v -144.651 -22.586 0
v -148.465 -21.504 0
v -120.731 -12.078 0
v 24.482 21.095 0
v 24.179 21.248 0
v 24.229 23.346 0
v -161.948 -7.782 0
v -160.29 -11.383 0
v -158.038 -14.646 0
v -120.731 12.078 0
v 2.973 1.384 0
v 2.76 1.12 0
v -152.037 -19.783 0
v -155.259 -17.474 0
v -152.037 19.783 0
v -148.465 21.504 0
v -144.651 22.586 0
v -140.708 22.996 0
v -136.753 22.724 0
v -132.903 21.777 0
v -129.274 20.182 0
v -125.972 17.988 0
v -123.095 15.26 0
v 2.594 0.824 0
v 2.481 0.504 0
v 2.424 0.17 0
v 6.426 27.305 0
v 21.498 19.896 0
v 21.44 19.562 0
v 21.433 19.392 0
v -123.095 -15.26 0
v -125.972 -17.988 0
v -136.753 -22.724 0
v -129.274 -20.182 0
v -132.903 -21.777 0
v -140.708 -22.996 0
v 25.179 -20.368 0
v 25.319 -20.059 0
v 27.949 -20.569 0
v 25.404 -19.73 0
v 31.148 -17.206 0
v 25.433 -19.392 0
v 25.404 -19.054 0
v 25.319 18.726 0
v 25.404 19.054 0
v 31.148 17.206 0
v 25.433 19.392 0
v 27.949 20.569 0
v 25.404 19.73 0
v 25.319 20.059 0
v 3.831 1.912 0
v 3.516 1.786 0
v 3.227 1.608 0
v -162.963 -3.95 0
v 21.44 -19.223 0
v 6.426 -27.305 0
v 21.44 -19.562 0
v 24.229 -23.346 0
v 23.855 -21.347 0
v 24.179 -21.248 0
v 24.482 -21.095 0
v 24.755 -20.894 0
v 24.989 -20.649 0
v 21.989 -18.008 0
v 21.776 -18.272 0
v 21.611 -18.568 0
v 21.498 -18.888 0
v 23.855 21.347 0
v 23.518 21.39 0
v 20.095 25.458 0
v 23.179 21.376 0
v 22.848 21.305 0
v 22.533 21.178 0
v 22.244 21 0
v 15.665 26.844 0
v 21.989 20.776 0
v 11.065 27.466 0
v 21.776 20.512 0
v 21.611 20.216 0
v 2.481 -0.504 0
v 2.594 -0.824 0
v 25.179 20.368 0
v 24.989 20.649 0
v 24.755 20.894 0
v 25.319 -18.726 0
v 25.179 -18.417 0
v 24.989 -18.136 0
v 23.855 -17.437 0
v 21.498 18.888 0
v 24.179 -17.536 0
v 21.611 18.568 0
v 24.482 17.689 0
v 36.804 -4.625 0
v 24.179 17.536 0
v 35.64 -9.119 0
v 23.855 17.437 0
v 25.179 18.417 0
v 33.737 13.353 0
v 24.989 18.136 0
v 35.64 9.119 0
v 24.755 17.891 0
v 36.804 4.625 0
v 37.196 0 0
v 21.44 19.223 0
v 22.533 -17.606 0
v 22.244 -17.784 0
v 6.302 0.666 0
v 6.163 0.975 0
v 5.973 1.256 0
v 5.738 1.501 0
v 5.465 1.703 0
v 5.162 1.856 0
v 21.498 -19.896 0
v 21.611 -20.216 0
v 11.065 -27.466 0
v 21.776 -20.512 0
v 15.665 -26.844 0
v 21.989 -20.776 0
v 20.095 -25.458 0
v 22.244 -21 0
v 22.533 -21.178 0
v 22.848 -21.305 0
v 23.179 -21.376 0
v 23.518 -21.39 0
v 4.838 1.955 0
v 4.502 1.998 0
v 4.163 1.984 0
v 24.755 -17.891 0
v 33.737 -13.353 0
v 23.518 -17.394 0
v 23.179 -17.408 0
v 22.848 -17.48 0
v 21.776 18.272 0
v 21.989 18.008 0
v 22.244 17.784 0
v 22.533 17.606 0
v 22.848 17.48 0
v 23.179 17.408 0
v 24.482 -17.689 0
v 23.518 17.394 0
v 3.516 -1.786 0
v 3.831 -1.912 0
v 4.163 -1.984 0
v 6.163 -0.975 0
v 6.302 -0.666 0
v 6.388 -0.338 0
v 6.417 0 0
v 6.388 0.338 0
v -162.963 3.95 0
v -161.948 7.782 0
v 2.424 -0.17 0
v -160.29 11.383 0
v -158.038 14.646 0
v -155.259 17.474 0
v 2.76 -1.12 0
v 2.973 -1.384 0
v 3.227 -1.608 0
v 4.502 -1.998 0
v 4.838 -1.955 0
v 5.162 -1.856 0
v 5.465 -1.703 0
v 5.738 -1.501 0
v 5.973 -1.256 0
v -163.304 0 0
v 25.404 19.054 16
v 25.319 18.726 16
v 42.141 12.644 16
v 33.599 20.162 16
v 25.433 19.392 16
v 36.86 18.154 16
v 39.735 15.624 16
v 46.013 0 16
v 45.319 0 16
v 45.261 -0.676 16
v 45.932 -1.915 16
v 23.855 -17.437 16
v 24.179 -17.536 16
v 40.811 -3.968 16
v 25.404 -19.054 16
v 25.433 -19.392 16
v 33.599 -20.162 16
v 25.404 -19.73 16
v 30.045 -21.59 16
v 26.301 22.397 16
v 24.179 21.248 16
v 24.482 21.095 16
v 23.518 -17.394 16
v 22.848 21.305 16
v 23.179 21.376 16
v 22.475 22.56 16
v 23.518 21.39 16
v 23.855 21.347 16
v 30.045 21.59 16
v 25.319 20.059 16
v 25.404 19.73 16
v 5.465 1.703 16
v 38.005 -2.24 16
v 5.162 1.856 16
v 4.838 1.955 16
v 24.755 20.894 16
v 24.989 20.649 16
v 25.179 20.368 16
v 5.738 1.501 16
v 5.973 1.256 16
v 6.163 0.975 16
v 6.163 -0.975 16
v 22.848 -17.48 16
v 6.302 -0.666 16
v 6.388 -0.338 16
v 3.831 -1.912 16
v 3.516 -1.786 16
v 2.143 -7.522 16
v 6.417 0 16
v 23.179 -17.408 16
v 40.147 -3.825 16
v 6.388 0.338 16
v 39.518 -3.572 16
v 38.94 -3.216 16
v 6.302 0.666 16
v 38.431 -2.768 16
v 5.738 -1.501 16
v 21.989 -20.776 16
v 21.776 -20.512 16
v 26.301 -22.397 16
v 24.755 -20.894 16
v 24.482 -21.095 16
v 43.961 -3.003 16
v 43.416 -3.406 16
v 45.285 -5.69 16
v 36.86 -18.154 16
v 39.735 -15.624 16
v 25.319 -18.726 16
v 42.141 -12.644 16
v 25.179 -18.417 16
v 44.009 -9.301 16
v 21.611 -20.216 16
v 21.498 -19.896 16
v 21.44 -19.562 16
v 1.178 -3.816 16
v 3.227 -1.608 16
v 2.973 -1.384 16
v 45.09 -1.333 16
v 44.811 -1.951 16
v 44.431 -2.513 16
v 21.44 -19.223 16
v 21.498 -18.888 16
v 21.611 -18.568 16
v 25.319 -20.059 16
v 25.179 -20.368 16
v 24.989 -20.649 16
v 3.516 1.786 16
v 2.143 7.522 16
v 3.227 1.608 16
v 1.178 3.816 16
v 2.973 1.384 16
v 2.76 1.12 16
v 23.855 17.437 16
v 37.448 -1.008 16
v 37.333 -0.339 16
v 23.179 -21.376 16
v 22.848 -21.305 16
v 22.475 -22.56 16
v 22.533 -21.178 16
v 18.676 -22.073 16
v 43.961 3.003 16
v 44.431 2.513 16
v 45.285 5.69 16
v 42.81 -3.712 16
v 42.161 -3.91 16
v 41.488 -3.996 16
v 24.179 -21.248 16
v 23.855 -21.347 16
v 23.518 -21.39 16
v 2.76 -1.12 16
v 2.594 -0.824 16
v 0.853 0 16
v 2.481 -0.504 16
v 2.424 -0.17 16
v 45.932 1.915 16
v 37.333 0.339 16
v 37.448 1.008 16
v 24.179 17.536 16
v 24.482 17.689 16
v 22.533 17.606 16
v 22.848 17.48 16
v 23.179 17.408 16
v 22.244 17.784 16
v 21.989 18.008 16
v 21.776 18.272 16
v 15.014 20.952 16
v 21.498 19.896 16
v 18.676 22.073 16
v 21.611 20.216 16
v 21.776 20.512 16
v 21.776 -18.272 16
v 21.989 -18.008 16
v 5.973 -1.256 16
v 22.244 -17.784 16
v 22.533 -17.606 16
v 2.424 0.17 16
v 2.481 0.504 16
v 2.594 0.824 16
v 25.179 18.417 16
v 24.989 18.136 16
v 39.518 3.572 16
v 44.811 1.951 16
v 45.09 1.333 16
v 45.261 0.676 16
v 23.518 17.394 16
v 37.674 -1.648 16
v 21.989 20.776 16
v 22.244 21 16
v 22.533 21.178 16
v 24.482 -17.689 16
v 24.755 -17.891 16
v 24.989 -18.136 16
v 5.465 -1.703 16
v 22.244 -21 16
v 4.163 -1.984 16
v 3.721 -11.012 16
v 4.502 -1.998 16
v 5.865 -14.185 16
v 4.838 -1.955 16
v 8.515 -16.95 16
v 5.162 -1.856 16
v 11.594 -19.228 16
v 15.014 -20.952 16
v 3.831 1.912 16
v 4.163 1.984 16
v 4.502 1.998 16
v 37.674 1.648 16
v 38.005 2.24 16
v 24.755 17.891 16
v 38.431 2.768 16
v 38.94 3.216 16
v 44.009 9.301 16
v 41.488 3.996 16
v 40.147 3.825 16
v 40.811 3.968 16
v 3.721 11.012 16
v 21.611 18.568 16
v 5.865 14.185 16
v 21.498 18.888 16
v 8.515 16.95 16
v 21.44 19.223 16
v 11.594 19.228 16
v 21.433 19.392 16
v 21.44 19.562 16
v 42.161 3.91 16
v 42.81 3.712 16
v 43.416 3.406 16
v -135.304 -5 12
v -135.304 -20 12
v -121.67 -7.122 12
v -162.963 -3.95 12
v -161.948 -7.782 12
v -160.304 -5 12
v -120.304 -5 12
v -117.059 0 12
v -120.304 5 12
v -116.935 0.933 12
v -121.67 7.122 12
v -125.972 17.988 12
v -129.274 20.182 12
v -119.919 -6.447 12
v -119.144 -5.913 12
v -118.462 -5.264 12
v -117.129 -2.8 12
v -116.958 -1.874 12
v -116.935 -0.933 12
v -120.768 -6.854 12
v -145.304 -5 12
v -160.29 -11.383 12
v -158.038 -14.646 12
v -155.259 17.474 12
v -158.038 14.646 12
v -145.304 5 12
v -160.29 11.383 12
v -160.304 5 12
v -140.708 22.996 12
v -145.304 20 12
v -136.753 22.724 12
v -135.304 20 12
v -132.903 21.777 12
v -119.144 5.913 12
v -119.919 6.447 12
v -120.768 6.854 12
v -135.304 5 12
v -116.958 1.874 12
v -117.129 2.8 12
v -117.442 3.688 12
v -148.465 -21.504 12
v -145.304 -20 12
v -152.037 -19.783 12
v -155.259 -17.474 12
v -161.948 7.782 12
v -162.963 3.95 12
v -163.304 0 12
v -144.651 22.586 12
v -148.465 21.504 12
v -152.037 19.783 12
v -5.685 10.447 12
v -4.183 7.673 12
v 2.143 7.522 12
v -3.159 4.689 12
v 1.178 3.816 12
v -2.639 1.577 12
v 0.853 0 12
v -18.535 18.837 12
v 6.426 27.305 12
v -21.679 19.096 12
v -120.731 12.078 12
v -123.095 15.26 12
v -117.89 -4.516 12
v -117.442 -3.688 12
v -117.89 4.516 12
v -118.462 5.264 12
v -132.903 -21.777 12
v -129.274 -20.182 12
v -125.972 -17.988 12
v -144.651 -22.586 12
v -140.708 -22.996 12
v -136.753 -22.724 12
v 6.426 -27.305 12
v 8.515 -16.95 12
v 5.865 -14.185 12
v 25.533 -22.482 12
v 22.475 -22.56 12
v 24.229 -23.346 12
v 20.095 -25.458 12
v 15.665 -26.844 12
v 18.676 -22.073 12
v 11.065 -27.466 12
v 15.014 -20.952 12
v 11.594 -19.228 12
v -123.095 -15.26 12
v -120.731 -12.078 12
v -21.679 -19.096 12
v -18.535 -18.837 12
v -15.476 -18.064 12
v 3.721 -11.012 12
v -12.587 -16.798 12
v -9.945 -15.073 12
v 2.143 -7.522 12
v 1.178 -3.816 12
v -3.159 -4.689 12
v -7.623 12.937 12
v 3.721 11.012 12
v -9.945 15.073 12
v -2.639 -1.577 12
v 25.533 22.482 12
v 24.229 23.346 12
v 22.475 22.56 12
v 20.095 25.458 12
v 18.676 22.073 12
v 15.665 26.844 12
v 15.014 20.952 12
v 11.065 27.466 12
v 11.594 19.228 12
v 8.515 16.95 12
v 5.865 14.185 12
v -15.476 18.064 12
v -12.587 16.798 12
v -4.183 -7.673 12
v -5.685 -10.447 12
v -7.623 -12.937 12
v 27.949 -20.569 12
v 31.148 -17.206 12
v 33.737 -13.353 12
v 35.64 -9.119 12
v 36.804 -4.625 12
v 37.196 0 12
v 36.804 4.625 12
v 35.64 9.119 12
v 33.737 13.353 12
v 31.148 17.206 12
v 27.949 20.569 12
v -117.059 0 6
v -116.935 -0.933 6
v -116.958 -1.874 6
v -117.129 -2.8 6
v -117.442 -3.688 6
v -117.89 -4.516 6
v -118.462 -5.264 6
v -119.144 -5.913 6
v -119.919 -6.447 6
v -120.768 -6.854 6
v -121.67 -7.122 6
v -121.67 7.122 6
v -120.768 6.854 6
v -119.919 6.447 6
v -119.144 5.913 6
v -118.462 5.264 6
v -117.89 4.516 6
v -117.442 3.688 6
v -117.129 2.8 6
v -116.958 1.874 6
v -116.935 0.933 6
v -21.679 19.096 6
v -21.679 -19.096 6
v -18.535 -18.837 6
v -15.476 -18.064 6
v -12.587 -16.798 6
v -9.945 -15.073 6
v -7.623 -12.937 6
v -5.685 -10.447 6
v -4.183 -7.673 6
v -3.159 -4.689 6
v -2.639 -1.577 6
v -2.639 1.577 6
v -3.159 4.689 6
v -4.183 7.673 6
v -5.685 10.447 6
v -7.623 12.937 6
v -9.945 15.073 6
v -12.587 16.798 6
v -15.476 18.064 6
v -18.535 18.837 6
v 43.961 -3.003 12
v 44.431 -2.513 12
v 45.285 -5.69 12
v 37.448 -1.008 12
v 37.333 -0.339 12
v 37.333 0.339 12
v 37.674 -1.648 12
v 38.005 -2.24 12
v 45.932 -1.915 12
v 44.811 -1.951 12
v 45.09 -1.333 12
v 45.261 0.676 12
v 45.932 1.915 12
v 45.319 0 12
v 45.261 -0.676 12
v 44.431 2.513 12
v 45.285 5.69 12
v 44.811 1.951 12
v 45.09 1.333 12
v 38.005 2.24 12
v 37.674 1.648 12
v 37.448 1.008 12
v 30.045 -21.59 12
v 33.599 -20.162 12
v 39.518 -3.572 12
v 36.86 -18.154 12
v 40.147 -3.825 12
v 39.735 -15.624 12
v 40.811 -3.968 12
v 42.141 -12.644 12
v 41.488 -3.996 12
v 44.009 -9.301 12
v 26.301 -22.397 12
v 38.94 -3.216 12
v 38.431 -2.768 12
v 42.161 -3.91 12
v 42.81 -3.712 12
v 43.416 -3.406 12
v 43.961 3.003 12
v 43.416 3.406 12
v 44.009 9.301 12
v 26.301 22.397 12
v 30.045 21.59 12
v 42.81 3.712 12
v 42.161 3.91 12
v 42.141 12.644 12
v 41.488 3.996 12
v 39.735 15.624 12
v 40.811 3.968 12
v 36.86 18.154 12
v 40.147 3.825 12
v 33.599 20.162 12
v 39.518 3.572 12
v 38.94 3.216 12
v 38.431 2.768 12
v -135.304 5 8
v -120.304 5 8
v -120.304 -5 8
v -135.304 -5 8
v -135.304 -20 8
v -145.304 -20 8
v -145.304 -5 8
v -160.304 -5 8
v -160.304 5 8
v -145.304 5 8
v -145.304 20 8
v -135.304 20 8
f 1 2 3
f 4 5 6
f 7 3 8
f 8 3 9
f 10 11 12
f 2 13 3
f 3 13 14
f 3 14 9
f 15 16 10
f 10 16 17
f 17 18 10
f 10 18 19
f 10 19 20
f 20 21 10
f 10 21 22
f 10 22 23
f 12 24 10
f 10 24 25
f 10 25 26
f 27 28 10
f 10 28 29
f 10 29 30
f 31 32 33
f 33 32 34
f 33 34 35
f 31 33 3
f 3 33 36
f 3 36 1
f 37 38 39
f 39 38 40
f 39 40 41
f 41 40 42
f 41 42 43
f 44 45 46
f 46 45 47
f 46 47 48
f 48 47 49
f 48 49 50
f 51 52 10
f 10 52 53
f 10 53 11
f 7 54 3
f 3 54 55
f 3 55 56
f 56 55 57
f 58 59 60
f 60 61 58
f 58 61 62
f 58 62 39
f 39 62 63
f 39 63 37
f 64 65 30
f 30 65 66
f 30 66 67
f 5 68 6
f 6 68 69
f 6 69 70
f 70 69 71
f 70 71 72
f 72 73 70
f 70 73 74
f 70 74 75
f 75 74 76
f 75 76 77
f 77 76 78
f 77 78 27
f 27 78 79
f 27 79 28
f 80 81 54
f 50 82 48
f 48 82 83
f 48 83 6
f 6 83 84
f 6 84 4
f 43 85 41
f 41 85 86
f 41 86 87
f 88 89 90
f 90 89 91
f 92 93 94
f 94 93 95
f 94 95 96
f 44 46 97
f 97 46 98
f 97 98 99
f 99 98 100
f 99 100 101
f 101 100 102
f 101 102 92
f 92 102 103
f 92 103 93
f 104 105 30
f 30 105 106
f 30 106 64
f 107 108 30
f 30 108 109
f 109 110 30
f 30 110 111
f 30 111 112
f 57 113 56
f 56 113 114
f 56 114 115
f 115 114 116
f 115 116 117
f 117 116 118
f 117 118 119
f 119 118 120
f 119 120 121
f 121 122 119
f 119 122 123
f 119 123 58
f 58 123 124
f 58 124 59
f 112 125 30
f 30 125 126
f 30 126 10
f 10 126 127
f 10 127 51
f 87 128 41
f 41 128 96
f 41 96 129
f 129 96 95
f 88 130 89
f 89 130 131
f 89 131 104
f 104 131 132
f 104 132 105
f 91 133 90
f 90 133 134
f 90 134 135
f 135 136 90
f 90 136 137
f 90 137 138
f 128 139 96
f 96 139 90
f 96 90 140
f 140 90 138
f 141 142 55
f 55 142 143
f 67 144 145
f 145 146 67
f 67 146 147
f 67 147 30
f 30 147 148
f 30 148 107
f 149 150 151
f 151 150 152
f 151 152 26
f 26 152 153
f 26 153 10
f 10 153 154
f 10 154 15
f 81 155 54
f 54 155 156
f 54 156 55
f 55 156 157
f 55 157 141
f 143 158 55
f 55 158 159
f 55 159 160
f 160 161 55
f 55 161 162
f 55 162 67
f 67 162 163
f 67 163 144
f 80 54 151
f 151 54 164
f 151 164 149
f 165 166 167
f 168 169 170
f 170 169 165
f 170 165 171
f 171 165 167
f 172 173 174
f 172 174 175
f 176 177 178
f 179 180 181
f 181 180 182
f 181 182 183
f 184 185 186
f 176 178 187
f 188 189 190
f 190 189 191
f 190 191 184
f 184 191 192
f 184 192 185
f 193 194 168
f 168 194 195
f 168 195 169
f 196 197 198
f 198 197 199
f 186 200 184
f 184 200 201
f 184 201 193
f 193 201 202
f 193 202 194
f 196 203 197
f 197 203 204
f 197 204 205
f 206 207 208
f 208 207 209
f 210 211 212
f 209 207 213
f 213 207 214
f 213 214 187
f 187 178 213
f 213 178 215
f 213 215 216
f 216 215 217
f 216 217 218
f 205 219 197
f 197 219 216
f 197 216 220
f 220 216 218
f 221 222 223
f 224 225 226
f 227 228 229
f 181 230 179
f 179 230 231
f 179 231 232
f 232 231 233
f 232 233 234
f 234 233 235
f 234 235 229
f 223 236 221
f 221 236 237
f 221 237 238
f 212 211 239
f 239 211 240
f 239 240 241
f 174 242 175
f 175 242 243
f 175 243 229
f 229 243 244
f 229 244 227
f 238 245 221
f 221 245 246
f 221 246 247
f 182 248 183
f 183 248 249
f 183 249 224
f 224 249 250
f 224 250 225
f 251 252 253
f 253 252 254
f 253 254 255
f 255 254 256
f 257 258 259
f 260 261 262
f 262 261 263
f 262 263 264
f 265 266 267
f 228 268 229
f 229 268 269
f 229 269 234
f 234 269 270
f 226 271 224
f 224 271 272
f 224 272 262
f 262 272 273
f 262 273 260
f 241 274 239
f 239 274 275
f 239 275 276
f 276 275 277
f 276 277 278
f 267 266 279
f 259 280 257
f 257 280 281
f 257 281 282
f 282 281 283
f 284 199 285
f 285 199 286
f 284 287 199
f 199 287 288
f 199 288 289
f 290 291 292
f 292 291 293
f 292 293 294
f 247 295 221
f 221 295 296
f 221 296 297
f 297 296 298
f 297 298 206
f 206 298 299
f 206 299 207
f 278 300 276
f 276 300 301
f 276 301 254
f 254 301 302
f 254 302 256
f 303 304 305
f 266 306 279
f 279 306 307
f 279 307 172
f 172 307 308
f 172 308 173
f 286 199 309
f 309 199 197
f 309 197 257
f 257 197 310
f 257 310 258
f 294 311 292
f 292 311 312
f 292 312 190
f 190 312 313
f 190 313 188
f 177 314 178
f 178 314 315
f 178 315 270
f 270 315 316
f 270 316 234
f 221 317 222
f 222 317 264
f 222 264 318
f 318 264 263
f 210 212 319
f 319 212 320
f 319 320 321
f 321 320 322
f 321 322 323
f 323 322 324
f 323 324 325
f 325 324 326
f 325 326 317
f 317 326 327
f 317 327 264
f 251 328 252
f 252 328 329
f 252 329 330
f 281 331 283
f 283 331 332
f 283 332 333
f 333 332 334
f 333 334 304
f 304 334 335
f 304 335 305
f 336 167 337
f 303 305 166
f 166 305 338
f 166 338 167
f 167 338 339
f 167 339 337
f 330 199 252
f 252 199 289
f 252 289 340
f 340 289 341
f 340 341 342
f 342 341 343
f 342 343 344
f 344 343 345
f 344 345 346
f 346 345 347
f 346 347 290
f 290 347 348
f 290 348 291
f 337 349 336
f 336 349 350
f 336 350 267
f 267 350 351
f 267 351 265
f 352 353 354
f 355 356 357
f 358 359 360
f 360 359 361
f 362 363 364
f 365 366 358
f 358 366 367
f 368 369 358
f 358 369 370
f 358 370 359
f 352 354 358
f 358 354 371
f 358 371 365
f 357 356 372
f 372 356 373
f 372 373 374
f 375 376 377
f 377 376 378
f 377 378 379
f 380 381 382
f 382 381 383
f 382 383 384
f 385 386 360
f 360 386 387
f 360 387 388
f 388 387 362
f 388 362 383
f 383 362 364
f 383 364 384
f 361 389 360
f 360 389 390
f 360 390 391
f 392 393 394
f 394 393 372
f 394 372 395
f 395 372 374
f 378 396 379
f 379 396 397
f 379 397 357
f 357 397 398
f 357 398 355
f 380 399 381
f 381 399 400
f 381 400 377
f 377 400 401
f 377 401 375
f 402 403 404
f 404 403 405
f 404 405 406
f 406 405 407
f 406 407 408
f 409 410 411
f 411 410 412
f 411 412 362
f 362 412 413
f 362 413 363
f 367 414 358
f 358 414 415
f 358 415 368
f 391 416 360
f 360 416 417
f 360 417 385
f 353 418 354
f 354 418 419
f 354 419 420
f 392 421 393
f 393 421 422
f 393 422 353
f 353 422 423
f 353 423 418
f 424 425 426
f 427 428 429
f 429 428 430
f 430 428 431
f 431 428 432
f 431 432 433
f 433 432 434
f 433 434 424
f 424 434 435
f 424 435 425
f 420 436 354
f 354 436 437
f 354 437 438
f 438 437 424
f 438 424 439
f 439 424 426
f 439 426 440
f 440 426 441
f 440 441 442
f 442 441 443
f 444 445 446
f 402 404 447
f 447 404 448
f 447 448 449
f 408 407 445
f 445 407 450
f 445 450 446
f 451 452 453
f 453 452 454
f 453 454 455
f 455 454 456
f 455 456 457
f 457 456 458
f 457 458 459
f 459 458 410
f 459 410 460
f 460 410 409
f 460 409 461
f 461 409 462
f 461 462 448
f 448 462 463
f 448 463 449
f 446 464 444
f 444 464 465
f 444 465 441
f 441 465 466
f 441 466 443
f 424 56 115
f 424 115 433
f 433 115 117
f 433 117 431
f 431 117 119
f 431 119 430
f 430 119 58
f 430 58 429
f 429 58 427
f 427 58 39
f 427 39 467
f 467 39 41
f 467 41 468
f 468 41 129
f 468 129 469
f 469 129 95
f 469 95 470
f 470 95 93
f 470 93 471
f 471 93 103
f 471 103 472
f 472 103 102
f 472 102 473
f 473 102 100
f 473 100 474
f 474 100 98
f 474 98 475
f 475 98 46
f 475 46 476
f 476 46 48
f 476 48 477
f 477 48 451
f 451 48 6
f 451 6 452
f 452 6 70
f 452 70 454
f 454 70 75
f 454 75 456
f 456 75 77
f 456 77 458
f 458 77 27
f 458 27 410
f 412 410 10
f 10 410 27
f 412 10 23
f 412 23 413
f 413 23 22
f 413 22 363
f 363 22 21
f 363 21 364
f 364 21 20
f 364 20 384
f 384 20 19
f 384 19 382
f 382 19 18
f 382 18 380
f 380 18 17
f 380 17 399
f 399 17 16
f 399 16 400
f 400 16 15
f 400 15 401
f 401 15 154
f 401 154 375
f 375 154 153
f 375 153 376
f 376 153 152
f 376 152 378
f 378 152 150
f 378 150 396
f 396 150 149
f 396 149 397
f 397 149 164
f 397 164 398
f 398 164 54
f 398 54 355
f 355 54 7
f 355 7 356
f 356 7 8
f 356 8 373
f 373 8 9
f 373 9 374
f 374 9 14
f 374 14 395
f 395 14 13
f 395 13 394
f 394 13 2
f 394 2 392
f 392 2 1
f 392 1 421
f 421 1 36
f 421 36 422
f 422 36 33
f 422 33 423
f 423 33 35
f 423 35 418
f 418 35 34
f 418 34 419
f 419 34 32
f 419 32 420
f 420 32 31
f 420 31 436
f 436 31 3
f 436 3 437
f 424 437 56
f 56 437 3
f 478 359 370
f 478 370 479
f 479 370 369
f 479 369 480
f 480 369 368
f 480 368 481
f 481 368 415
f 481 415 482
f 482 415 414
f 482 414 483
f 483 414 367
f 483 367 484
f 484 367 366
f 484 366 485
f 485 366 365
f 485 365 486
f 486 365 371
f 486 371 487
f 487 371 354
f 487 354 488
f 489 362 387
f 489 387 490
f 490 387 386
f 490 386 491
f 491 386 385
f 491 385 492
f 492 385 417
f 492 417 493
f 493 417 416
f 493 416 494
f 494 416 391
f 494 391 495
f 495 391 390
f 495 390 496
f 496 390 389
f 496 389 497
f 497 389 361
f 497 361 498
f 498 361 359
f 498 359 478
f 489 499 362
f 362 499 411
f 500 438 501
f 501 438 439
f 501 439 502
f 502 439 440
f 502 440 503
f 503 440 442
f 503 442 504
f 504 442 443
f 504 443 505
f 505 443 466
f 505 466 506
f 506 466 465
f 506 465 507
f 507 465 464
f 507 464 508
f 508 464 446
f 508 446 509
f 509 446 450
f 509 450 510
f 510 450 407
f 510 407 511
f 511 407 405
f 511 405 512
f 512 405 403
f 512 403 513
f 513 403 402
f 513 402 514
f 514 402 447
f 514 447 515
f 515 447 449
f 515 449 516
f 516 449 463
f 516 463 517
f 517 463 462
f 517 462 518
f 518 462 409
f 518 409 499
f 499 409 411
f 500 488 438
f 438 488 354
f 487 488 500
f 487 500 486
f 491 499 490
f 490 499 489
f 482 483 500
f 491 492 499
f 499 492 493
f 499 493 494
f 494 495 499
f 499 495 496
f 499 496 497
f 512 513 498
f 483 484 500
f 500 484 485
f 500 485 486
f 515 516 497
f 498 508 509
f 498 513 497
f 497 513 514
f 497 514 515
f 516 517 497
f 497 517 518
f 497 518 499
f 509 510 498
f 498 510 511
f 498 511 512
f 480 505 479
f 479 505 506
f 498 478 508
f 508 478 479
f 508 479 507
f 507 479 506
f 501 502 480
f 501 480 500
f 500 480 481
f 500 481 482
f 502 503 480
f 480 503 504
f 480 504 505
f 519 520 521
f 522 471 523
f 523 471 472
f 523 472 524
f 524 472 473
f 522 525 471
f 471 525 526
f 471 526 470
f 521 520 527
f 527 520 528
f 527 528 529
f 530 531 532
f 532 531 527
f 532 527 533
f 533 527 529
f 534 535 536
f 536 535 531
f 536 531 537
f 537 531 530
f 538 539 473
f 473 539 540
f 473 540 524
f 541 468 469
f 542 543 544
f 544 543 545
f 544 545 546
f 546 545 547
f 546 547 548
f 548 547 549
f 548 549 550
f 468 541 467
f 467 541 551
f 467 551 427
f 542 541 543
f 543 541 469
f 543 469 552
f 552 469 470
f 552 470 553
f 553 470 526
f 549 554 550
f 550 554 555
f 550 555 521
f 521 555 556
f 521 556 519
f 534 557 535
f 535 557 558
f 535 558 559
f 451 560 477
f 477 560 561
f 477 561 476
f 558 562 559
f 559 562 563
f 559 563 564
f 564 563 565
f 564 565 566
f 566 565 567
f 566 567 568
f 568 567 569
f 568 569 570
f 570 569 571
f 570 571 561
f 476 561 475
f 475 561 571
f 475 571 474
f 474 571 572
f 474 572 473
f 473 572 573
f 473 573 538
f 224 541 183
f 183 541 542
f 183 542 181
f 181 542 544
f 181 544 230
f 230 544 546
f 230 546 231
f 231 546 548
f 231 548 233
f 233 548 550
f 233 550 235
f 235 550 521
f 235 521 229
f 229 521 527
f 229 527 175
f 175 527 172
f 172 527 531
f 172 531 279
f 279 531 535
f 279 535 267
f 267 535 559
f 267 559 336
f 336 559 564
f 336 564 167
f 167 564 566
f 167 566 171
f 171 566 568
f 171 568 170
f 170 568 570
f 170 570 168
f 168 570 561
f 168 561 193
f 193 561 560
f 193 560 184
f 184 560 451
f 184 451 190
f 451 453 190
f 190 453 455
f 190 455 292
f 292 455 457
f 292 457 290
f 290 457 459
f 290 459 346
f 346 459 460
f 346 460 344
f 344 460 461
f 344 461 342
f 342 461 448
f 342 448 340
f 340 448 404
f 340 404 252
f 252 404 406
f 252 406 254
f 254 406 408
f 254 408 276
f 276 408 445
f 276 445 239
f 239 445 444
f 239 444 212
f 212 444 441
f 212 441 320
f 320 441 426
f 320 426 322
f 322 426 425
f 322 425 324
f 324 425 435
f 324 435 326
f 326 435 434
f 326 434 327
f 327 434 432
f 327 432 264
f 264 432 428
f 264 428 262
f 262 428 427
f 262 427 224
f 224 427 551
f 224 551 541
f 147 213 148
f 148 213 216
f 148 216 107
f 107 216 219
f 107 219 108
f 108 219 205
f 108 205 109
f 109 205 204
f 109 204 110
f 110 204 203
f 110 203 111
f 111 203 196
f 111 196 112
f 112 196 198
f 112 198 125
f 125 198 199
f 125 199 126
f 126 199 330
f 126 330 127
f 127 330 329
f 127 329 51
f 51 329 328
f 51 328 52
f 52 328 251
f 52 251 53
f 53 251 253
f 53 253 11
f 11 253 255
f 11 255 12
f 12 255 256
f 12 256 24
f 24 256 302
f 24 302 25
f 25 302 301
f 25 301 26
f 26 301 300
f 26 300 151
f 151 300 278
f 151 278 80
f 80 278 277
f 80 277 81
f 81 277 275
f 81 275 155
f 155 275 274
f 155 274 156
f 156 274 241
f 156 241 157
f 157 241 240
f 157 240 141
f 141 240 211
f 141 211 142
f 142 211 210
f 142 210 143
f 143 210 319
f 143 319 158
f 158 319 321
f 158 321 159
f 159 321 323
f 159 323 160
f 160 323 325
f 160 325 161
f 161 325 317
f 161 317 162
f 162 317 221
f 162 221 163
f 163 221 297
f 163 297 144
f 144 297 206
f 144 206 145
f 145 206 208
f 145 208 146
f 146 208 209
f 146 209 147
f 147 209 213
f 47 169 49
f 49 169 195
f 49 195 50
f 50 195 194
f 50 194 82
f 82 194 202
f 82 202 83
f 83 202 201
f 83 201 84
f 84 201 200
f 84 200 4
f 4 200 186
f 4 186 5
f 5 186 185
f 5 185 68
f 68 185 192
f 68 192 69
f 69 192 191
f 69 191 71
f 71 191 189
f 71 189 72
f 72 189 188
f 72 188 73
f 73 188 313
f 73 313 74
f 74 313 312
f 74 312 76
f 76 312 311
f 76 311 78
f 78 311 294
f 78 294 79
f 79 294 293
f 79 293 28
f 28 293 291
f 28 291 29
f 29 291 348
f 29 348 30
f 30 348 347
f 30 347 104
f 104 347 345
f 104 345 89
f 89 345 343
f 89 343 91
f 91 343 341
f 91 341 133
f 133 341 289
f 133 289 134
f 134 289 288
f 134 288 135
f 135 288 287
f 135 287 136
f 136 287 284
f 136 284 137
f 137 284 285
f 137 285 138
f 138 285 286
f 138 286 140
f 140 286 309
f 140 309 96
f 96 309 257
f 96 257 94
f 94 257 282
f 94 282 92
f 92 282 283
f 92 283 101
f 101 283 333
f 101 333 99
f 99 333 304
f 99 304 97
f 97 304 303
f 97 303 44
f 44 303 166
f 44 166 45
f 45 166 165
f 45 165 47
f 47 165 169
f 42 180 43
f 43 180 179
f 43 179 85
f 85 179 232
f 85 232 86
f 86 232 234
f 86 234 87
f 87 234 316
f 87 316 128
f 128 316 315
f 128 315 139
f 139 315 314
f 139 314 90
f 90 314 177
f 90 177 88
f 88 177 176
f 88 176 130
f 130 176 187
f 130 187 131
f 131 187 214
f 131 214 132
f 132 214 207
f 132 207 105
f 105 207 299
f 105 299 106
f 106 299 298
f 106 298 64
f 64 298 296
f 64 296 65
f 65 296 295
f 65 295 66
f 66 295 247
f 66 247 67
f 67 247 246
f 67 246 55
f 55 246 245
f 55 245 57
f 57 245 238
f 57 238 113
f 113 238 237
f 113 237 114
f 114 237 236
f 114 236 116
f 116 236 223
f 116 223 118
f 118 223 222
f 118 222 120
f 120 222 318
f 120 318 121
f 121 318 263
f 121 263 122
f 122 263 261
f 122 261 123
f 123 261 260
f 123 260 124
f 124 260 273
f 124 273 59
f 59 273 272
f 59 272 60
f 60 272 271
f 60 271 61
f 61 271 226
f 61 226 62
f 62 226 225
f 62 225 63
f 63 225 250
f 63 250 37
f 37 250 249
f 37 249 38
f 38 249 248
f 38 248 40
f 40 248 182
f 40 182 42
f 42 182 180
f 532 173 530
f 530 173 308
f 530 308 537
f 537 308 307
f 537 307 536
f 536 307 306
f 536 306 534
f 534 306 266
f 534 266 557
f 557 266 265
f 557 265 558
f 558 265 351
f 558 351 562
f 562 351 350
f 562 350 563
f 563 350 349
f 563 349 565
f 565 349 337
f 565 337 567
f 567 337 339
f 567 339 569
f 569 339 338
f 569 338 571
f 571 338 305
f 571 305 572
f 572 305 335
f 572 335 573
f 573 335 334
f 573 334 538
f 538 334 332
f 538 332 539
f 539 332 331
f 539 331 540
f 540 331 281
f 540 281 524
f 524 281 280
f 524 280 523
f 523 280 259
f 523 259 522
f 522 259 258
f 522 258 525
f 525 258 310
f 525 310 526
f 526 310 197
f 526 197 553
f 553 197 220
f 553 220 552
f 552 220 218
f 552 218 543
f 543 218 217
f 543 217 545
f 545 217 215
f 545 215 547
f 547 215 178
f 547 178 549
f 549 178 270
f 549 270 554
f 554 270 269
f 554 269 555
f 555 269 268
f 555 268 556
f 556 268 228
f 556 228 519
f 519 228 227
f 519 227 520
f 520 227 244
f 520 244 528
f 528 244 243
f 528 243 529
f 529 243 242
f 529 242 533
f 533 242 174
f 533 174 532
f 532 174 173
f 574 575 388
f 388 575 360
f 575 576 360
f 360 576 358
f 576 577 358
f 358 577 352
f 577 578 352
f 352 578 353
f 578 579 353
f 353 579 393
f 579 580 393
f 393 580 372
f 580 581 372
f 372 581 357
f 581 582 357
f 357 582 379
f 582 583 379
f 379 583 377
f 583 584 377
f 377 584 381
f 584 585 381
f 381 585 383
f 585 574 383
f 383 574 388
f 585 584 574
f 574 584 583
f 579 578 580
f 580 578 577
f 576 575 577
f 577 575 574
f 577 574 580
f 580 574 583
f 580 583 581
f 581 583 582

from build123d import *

# Parameters (mm, degrees)
BOSS_EXTRUDE1_DEPTH     = 12
CUT_EXTRUDE1_DEPTH      = 6
SKETCH5_R               = 22.579968686
BOSS_EXTRUDE2_DEPTH     = 4
SKETCH6_R               = 2
CUT_EXTRUDE3_DEPTH      = 16
SKETCH6_3_R             = 2
CUT_EXTRUDE5_DEPTH      = 16
SKETCH8_R               = 4
CUT_EXTRUDE8_DEPTH      = 1
CUT_EXTRUDE8_DEPTH_BACK = 17
CUT_EXTRUDE9_DEPTH      = 4


with BuildPart() as part:
    # Sketch1 → Boss-Extrude1 (new body)
    with BuildSketch(Plane.XY):
        with BuildLine():
            Line((6.425984457, 27.304915127), (-120.730550627, 12.077737738))
            ThreePointArc((-120.730550627, 12.077737738), (-163.304212807, 0), (-120.730550627, -12.077737738))
            Line((-120.730550627, -12.077737738), (6.425984457, -27.304915127))
            ThreePointArc((6.425984457, -27.304915127), (37.195787193, 0), (6.425984457, 27.304915127))
        make_face()
    extrude(amount=BOSS_EXTRUDE1_DEPTH)

    # Sketch3 → Cut-Extrude1 (cut)
    with BuildSketch(Plane.XY.offset(12)):
        with BuildLine():
            Line((-121.670322635, 7.122377923), (-21.678965717, 19.096486278))
            ThreePointArc((-21.678965717, 19.096486278), (-2.5738344, 0), (-21.678965717, -19.096486278))
            Line((-21.678965717, -19.096486278), (-121.670322635, -7.122377923))
            ThreePointArc((-121.670322635, -7.122377923), (-117.889637025, -4.516196787), (-117.059136947, 0))
            ThreePointArc((-117.059136947, 0), (-117.889637025, 4.516196787), (-121.670322635, 7.122377923))
        make_face()
    extrude(amount=-CUT_EXTRUDE1_DEPTH, mode=Mode.SUBTRACT)

    # Sketch5 → Boss-Extrude2 (add)
    with BuildSketch(Plane.XY.offset(12)):
        with Locations((23.433246409, 0)):
            Circle(SKETCH5_R)
    extrude(amount=BOSS_EXTRUDE2_DEPTH)

    # Sketch6 → Cut-Extrude3 (cut)
    with BuildSketch(Plane.XY.offset(16)):
        with Locations((4.416689948, 0)):
            Circle(SKETCH6_R)
    extrude(amount=-CUT_EXTRUDE3_DEPTH, mode=Mode.SUBTRACT)

    # Sketch6<3> → Cut-Extrude5 (cut)
    with BuildSketch(Plane.XY.offset(16)):
        with Locations((23.433246409, -19.392257926)):
            Circle(SKETCH6_3_R)
        with Locations((42.449802871, 0)):
            Circle(SKETCH6_3_R)
        with Locations((23.433246409, 19.392257926)):
            Circle(SKETCH6_3_R)
    extrude(amount=-CUT_EXTRUDE5_DEPTH, mode=Mode.SUBTRACT)

    # Sketch8 → Cut-Extrude8 (cut, two sides)
    with BuildSketch(Plane.XY.offset(16)) as cut_extrude8_sk:
        with Locations((41.318582697, 0)):
            Circle(SKETCH8_R)
    extrude(amount=CUT_EXTRUDE8_DEPTH, mode=Mode.SUBTRACT)
    extrude(cut_extrude8_sk.sketch, amount=-CUT_EXTRUDE8_DEPTH_BACK, mode=Mode.SUBTRACT)

    # Sketch10 → Cut-Extrude9 (cut)
    with BuildSketch(Plane.XY.offset(12)):
        Polygon((-120.304212807, 5), (-135.304212807, 5), (-135.304212807, 20), (-145.304212807, 20), (-145.304212807, 5), (-160.304212807, 5), (-160.304212807, -5), (-145.304212807, -5), (-145.304212807, -20), (-135.304212807, -20), (-135.304212807, -5), (-120.304212807, -5), align=None)
    extrude(amount=-CUT_EXTRUDE9_DEPTH, mode=Mode.SUBTRACT)


solid = part.part
